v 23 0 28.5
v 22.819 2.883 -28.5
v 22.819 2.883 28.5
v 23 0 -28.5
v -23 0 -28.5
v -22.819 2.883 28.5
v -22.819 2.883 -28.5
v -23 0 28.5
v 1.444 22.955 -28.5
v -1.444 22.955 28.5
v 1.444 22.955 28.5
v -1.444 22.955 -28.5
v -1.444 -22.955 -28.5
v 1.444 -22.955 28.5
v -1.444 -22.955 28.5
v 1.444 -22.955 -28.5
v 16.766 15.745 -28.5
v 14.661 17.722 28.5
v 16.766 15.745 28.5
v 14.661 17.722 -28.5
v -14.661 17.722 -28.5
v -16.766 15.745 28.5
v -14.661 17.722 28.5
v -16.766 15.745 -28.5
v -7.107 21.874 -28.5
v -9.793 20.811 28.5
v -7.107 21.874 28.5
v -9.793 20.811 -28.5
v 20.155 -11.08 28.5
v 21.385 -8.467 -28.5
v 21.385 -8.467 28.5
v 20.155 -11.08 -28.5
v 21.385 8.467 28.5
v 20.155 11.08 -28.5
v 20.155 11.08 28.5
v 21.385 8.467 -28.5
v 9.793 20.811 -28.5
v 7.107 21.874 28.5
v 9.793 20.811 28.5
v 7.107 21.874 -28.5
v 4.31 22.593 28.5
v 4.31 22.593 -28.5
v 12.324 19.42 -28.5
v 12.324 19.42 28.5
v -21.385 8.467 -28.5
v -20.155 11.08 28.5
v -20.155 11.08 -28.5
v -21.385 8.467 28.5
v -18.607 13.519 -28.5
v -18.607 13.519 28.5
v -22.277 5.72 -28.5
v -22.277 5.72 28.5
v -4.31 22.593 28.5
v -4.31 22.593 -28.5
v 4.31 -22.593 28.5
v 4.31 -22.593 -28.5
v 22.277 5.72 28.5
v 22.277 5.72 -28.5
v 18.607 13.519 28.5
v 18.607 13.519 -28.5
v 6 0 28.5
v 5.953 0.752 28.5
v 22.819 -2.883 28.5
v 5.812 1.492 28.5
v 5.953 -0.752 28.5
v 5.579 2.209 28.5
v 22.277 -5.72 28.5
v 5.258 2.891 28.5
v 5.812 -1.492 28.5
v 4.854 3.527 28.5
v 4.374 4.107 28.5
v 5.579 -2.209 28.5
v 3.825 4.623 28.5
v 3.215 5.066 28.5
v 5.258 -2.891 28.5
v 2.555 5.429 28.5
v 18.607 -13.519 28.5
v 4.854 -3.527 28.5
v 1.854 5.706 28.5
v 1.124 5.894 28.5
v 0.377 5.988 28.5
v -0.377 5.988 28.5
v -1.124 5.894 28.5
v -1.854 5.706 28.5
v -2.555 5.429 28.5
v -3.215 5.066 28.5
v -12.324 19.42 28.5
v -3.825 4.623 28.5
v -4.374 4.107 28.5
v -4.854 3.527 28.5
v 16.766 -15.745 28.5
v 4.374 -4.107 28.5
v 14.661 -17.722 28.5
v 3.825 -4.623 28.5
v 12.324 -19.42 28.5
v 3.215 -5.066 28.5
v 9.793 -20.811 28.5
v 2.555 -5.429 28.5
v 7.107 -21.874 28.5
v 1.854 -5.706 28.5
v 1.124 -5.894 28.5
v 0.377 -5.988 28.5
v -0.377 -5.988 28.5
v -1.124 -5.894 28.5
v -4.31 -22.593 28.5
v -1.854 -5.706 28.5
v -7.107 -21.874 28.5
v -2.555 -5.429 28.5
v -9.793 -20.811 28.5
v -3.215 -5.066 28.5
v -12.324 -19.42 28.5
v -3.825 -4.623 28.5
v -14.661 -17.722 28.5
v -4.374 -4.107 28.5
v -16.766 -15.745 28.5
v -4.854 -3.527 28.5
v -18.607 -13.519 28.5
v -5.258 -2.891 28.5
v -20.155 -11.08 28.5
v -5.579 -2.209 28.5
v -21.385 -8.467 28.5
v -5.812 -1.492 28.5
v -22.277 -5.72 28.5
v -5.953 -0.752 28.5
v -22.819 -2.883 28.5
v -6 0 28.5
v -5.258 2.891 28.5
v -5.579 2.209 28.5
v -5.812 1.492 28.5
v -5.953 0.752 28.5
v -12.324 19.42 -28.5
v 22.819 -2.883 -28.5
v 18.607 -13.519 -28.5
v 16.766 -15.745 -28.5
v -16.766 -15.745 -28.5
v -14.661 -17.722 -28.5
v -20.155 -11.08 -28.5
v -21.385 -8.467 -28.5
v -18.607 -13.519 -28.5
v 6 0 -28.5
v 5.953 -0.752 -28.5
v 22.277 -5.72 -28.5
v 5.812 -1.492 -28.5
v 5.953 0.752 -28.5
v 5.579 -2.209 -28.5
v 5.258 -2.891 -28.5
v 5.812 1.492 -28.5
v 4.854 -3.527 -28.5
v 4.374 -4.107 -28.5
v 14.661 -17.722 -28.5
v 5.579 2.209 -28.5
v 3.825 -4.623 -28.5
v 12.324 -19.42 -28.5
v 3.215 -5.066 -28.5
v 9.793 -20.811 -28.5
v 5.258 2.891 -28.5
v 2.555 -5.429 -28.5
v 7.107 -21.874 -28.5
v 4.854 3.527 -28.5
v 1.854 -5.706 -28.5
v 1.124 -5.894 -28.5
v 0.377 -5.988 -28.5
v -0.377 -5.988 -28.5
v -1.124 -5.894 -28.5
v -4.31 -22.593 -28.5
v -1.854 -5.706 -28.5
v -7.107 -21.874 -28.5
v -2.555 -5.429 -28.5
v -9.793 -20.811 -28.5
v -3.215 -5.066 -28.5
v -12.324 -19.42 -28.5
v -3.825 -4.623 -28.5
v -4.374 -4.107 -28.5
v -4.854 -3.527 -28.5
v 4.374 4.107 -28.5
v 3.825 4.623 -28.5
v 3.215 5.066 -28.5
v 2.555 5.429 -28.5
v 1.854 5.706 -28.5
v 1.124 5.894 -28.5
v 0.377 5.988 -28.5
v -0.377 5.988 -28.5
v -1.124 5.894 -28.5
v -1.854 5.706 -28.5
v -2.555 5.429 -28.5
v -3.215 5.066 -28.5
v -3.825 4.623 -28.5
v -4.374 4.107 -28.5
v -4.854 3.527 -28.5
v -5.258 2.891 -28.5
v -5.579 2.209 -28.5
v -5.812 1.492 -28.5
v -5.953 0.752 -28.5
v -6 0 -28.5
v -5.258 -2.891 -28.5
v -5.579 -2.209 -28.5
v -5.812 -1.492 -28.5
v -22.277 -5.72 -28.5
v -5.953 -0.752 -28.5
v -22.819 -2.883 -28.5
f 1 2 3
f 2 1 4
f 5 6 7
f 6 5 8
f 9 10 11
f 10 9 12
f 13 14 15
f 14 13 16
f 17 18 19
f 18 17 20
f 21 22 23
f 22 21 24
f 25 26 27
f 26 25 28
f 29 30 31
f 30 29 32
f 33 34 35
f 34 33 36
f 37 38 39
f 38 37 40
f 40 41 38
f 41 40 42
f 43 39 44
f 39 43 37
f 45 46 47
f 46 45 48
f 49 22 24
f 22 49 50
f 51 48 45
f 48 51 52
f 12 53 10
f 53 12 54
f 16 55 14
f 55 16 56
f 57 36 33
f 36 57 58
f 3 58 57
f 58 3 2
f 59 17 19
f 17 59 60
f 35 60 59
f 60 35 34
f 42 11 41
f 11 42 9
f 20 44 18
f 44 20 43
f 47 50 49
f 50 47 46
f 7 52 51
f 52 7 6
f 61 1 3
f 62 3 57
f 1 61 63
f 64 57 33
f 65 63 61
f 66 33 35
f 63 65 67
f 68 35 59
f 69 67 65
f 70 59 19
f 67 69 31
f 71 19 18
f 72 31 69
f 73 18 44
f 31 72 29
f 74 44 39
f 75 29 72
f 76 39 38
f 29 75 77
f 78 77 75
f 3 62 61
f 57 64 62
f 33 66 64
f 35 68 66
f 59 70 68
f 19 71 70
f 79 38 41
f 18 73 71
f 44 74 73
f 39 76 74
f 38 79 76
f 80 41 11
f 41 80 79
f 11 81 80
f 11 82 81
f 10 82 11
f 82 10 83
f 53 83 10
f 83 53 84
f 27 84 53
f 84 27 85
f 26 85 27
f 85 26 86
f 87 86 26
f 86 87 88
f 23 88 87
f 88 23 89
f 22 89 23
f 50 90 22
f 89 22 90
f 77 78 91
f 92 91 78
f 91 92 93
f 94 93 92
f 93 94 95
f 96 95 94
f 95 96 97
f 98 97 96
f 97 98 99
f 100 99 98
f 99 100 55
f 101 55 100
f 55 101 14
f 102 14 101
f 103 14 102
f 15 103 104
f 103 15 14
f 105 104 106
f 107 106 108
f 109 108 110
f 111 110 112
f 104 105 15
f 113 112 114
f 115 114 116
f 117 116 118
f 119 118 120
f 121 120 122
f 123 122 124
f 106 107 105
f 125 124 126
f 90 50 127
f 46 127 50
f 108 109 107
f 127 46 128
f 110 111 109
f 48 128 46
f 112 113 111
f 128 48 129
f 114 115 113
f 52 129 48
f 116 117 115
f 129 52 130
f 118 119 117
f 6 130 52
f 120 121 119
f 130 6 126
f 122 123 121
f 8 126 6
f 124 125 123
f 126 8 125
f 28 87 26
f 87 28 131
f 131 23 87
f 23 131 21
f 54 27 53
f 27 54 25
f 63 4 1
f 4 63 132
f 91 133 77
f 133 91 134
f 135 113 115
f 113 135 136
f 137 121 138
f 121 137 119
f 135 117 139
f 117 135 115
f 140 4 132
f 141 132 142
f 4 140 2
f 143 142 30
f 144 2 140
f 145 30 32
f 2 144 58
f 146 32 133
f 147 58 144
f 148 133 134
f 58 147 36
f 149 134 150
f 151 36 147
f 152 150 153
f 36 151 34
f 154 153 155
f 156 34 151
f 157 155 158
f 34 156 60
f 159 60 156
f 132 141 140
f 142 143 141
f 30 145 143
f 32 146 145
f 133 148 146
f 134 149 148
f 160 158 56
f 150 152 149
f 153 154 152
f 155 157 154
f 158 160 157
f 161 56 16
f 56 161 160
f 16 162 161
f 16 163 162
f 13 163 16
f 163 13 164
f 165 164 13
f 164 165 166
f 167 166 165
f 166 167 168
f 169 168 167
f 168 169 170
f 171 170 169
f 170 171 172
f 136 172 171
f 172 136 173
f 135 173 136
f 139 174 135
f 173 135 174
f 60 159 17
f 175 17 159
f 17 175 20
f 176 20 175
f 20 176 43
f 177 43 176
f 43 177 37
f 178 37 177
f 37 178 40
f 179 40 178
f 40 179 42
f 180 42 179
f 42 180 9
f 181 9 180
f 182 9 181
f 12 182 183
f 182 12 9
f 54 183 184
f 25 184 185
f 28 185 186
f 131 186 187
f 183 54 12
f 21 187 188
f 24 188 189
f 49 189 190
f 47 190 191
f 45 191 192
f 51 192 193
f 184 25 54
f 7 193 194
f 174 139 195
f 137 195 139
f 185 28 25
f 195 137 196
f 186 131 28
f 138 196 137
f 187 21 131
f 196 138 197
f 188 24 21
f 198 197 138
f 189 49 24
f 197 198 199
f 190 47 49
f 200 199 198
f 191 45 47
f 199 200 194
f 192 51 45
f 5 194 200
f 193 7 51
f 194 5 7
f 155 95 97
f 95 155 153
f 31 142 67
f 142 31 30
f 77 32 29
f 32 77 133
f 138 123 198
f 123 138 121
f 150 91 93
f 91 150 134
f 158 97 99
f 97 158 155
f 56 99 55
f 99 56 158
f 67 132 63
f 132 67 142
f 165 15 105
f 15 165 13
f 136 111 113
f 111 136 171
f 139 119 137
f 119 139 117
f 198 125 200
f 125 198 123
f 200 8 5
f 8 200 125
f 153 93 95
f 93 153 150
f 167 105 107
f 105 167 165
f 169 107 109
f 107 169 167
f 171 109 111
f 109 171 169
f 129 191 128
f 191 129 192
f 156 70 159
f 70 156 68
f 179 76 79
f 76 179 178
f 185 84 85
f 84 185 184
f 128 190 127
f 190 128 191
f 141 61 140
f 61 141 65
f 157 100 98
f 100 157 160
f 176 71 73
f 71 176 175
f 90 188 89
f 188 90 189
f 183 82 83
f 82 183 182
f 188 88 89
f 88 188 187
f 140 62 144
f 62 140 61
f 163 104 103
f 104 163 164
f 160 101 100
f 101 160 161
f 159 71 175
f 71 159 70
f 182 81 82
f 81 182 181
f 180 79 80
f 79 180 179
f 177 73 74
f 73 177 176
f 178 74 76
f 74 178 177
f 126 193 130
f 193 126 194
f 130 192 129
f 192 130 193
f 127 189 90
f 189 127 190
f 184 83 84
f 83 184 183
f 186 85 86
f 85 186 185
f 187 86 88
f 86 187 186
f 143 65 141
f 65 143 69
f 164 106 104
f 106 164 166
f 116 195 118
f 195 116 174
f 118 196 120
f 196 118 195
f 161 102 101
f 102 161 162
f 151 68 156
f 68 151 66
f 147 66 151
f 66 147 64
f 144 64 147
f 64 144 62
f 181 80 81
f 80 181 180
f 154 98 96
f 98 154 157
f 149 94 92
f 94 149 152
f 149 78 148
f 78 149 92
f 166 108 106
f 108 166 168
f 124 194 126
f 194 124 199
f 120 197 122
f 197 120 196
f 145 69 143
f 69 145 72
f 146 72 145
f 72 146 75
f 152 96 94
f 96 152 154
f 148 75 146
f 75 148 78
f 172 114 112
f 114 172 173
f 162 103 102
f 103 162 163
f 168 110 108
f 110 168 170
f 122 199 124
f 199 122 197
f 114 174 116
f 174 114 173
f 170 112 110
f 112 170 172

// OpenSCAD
$fn = 50;


difference() {
	union() {
		translate(v = [0, 0, -28.5000000000]) {
			cylinder(h = 57, r = 23.0000000000);
		}
	}
	union() {
		translate(v = [0, 0, -100.0000000000]) {
			cylinder(h = 200, r = 6);
		}
	}
}
